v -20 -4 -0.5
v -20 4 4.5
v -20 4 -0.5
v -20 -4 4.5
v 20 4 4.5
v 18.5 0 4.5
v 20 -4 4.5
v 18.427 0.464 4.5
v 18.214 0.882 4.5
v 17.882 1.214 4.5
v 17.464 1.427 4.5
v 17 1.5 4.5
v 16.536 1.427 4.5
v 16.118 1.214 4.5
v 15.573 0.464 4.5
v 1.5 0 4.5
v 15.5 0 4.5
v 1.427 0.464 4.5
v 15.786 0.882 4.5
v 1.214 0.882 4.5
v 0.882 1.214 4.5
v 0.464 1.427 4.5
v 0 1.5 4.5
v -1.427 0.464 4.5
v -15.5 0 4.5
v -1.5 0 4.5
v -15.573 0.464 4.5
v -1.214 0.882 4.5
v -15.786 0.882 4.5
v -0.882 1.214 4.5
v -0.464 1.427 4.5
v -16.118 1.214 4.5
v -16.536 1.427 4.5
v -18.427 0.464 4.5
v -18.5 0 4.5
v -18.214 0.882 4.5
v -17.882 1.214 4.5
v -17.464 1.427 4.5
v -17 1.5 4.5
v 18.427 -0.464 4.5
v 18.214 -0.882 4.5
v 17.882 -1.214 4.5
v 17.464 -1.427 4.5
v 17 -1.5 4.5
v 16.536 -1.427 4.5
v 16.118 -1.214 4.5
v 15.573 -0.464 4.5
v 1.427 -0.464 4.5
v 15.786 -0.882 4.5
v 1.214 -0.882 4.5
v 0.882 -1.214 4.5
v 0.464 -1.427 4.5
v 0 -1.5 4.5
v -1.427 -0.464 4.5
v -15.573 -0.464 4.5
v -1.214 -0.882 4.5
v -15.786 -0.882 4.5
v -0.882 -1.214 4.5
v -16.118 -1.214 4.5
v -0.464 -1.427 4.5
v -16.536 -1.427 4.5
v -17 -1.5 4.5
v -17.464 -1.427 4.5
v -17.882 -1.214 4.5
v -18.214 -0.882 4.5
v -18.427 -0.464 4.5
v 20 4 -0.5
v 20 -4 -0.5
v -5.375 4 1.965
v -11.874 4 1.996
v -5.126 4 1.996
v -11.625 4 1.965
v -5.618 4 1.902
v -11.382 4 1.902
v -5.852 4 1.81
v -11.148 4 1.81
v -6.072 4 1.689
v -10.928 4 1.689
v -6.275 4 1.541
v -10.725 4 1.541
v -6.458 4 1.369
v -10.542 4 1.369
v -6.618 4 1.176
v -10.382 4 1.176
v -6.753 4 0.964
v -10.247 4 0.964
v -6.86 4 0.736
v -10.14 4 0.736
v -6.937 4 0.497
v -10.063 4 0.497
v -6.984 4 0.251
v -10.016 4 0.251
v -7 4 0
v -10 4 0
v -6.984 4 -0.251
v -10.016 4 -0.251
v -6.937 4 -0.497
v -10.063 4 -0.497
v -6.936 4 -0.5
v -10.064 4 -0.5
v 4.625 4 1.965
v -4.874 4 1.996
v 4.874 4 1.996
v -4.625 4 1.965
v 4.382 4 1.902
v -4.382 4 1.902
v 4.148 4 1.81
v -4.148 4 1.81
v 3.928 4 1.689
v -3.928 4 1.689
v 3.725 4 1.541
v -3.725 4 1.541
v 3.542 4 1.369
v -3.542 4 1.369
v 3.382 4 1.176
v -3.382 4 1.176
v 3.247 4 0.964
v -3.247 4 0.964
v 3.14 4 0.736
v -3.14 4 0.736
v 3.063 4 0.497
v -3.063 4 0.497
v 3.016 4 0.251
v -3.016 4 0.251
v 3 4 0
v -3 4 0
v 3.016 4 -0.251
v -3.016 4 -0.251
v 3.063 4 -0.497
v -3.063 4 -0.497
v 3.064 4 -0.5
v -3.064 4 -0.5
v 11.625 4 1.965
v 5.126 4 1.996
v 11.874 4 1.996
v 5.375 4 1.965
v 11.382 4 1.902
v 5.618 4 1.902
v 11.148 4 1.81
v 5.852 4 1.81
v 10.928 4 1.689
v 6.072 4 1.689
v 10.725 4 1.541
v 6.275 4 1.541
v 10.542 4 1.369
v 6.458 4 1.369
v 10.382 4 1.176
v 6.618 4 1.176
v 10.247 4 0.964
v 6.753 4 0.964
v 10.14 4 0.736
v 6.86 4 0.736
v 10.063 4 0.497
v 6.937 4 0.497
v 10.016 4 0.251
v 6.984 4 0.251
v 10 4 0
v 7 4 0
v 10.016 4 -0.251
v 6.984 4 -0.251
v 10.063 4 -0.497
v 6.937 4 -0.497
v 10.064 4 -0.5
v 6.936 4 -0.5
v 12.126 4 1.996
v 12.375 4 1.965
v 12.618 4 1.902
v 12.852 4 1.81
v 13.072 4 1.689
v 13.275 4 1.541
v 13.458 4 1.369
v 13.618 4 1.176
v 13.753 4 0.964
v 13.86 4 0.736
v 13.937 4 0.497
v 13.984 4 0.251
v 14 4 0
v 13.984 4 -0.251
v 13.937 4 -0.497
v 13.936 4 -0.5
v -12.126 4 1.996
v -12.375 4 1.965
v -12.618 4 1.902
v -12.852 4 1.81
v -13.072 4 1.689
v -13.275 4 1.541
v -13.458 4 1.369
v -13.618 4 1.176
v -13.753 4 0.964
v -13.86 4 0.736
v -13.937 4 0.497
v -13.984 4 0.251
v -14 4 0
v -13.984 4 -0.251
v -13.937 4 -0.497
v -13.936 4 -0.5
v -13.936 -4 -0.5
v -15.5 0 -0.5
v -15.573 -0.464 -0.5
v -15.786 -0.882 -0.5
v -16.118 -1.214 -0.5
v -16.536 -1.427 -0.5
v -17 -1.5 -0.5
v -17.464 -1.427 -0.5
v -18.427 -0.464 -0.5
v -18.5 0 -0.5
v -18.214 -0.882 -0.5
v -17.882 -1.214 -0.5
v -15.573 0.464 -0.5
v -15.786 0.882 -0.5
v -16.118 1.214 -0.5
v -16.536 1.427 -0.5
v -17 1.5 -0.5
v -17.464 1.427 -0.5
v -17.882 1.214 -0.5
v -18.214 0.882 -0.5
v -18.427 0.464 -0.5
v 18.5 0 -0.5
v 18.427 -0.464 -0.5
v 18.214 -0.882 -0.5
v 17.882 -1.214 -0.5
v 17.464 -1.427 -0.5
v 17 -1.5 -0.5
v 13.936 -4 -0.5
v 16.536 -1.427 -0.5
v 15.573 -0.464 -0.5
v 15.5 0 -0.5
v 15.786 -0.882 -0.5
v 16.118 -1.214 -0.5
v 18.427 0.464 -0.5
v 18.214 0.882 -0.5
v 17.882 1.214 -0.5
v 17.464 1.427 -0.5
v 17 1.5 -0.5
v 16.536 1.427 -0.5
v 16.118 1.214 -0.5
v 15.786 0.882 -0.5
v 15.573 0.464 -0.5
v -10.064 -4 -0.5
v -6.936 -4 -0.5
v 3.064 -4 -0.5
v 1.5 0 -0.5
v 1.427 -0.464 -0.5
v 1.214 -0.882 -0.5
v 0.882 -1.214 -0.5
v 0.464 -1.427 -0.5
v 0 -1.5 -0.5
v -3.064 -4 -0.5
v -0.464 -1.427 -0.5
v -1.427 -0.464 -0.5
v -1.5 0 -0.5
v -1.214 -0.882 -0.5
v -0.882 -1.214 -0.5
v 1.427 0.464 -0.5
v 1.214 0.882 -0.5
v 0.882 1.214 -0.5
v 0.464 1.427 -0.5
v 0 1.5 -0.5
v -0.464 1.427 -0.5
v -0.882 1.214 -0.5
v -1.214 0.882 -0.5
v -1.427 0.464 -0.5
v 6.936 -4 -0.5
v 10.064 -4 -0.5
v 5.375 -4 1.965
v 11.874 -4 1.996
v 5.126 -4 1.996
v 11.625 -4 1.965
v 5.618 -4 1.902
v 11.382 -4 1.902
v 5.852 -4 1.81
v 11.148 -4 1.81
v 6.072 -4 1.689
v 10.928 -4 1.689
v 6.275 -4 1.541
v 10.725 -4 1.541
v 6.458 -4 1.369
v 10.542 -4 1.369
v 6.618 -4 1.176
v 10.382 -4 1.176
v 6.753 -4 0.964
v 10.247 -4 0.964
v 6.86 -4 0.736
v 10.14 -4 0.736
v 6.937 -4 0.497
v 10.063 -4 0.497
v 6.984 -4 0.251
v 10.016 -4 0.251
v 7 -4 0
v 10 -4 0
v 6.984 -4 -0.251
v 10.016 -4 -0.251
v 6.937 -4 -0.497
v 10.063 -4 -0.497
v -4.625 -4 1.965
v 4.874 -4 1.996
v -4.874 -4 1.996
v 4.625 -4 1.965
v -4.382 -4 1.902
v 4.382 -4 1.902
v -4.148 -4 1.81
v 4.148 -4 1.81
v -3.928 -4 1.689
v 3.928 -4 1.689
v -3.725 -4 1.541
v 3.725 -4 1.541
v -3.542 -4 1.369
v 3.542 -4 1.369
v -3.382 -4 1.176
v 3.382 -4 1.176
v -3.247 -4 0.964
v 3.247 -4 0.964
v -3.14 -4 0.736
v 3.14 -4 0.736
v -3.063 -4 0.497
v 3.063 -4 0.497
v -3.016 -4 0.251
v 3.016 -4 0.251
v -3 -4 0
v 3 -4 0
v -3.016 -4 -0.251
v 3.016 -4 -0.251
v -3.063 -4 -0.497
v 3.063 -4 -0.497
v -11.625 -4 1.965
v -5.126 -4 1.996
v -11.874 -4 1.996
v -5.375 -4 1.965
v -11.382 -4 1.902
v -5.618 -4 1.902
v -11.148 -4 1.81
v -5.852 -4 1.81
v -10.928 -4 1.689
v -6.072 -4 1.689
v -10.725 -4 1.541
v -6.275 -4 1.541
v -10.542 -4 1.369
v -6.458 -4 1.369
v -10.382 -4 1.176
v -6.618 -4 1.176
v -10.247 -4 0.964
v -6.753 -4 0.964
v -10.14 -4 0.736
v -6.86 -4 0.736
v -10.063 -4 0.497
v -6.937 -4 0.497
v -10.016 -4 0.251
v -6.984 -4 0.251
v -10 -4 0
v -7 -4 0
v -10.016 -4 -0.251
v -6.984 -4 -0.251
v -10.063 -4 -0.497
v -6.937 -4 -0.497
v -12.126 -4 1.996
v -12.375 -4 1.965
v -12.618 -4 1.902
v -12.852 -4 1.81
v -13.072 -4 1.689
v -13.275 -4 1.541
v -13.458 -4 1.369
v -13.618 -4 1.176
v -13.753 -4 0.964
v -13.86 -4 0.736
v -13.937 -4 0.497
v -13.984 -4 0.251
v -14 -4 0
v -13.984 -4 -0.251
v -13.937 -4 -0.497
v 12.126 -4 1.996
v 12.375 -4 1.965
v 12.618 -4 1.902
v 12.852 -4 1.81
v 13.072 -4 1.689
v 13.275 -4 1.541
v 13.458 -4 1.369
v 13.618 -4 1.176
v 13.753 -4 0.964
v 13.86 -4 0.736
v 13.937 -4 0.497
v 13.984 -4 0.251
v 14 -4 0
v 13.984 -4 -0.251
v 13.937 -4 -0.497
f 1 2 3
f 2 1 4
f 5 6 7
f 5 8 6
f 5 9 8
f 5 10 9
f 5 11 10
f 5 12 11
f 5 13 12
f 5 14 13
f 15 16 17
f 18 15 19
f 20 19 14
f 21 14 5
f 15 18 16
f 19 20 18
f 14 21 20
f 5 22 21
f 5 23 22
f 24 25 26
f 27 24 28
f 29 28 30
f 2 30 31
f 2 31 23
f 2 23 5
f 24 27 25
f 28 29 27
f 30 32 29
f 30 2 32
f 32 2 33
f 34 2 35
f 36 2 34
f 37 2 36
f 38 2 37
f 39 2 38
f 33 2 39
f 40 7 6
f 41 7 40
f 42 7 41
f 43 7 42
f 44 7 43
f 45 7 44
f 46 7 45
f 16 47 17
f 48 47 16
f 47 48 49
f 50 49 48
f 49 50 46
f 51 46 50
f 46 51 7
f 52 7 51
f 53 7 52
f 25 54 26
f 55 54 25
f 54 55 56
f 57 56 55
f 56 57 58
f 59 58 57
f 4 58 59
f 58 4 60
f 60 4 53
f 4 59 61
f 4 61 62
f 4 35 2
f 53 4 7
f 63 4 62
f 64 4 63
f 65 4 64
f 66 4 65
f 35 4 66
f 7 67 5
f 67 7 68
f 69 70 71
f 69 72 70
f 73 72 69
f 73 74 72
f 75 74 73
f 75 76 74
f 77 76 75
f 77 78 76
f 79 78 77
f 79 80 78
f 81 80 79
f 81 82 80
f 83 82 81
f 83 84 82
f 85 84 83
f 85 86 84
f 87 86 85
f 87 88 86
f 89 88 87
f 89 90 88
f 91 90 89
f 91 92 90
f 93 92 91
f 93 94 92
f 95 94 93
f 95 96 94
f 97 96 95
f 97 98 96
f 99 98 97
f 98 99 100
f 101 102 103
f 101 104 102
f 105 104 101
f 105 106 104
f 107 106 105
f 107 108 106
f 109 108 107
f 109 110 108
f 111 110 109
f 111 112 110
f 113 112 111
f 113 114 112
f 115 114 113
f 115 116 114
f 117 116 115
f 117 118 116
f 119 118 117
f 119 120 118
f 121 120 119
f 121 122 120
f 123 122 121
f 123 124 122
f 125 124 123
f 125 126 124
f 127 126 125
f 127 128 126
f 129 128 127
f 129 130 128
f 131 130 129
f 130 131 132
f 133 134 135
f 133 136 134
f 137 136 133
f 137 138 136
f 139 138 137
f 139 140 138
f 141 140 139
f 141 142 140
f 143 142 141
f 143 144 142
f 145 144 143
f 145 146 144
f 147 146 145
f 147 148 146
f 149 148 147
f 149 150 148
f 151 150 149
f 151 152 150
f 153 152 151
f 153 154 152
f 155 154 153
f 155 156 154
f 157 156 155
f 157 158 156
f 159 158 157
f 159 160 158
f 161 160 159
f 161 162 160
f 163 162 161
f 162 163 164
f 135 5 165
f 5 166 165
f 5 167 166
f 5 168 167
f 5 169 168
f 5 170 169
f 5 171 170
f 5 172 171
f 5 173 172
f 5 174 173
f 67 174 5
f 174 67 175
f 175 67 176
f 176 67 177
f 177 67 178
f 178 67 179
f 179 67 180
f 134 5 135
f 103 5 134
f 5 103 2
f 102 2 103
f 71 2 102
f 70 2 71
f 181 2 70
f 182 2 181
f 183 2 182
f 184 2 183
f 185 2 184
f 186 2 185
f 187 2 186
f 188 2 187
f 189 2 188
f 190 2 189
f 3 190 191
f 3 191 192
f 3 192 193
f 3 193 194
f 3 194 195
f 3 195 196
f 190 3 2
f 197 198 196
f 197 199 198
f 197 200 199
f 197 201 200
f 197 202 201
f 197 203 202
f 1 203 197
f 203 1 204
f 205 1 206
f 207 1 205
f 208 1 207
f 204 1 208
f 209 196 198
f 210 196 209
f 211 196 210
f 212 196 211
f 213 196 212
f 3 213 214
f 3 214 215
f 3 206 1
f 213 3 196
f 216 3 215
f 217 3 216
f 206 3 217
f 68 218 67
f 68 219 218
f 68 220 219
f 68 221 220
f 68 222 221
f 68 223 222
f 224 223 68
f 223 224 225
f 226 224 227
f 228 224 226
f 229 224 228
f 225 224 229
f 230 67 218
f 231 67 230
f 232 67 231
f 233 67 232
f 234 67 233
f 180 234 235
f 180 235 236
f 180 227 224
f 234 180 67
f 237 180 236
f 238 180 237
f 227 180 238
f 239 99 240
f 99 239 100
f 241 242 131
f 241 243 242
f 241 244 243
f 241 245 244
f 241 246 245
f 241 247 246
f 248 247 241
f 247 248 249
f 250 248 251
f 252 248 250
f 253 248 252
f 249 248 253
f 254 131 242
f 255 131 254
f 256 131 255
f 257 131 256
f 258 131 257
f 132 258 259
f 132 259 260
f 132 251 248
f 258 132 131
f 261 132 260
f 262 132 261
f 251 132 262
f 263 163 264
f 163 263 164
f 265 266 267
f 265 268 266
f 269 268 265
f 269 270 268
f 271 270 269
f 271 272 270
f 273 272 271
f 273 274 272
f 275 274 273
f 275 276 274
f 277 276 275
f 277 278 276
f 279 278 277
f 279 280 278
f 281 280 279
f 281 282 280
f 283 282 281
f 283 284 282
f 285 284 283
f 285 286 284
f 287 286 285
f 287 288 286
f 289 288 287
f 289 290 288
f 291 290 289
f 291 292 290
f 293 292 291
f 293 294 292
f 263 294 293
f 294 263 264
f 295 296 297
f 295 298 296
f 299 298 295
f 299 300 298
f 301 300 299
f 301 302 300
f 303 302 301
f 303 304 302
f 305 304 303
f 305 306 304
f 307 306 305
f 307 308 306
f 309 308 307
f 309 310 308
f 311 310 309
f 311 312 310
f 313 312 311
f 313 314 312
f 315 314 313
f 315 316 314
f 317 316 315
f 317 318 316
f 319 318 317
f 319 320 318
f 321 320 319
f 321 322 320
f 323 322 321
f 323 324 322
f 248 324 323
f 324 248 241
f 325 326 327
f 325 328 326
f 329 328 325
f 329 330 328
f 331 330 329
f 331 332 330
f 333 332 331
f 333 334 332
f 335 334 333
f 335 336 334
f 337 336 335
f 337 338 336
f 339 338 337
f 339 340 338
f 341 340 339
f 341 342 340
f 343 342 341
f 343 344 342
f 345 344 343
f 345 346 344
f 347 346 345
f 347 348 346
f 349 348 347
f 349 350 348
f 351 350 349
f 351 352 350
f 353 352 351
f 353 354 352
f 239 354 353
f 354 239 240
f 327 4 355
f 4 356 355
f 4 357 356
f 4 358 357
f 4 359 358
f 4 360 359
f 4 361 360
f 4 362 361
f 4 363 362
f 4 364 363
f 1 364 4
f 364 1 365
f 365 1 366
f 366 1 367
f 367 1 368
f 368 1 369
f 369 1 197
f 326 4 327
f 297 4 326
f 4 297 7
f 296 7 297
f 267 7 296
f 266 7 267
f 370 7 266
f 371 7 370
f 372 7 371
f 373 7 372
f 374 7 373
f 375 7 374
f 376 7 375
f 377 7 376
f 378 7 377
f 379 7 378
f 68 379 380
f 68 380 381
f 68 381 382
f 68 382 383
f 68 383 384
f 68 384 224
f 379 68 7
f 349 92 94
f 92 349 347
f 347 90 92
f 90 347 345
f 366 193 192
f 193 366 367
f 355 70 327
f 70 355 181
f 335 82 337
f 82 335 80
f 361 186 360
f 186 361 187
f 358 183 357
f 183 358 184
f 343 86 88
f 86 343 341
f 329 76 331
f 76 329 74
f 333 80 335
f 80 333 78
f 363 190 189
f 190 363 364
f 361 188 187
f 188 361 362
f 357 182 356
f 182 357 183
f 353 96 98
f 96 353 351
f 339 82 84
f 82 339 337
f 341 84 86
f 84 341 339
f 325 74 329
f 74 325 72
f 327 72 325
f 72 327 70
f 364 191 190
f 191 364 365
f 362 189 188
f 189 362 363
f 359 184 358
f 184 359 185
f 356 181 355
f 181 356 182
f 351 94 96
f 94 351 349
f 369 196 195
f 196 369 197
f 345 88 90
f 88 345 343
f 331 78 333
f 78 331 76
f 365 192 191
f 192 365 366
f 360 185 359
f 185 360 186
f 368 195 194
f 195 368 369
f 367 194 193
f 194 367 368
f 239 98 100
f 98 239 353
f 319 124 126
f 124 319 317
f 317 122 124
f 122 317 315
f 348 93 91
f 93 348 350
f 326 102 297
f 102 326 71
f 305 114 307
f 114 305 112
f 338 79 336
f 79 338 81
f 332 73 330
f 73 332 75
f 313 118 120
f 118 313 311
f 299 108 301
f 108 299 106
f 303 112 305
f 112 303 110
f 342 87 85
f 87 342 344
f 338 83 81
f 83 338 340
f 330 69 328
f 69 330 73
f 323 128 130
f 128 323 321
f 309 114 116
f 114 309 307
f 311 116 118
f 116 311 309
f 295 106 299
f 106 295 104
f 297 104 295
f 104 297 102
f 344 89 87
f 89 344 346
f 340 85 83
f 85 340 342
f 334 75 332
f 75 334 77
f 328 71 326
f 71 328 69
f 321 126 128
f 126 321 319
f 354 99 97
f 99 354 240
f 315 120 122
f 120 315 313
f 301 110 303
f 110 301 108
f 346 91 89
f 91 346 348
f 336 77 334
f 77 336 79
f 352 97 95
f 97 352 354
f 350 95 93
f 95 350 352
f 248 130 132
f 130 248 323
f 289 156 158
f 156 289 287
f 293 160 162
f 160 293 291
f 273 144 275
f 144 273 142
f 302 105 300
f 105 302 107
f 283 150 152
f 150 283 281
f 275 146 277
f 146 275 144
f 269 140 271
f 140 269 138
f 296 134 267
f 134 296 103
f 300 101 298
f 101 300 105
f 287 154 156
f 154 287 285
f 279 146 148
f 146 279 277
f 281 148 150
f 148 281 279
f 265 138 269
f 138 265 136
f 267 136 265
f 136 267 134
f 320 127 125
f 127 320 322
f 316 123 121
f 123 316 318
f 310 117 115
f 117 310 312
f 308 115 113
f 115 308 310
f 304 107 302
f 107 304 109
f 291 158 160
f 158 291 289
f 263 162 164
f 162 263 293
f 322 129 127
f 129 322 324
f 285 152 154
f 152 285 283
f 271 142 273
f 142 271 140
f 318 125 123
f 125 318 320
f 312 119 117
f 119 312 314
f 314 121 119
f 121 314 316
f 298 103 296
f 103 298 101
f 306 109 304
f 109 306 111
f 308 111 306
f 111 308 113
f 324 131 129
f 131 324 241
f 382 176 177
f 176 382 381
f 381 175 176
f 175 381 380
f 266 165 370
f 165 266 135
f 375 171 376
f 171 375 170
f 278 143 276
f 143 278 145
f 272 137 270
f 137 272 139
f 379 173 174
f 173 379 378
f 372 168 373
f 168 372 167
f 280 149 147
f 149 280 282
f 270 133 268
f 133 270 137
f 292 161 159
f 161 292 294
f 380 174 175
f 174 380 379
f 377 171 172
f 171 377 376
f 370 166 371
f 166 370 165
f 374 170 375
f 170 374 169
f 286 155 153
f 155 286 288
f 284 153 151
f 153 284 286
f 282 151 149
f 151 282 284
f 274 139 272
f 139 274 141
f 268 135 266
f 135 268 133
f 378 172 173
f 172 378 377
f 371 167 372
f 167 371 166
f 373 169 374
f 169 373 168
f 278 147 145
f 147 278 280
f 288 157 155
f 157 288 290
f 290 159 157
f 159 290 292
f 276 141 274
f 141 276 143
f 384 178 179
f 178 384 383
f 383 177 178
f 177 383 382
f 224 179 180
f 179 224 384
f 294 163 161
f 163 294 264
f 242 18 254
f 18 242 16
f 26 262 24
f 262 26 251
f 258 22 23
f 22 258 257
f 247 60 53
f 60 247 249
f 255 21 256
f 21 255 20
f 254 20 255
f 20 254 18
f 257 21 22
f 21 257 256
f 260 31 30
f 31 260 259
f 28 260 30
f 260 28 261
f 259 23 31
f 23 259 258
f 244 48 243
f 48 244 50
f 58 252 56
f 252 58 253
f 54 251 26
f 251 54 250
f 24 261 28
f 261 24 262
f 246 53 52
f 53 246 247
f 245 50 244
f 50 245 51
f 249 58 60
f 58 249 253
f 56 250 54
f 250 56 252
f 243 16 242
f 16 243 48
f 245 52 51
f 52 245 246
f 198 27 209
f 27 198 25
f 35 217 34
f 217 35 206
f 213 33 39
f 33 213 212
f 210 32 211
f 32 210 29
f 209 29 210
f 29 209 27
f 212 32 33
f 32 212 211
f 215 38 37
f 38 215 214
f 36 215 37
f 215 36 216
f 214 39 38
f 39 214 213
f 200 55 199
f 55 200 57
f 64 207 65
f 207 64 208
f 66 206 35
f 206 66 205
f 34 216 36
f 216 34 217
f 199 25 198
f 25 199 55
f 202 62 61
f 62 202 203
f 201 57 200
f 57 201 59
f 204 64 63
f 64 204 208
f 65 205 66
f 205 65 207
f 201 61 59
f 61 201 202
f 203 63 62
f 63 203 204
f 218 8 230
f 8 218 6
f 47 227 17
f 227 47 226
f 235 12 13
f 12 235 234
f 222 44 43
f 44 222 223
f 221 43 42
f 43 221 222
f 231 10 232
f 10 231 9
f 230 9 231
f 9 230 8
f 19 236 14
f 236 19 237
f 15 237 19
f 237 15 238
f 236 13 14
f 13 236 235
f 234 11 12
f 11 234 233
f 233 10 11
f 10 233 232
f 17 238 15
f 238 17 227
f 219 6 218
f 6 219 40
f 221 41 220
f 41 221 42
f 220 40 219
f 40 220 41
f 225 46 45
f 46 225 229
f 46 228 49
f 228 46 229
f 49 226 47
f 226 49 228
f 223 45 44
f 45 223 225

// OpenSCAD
difference(){
difference() {
translate([0, 0, 2])
cube([40, 8, 5], center=true);

rotate([90,0,0])
translate([-12,0,0])
cylinder(h=10, d=4, $fn=50, center=true);

rotate([90,0,0])
translate([-5,0,0])
cylinder(h=10, d=4, $fn=50, center=true);

rotate([90,0,0])
translate([5,0,0])
cylinder(h=10, d=4, $fn=50, center=true);

rotate([90,0,0])
translate([12,0,0])
cylinder(h=10, d=4, $fn=50, center=true);
}

cylinder(h=20, d=3, center=true, $fn=20);
translate([-17,0,0])
cylinder(h=20, d=3, center=true, $fn=20);
translate([17,0,0])
cylinder(h=20, d=3, center=true, $fn=20);
}
